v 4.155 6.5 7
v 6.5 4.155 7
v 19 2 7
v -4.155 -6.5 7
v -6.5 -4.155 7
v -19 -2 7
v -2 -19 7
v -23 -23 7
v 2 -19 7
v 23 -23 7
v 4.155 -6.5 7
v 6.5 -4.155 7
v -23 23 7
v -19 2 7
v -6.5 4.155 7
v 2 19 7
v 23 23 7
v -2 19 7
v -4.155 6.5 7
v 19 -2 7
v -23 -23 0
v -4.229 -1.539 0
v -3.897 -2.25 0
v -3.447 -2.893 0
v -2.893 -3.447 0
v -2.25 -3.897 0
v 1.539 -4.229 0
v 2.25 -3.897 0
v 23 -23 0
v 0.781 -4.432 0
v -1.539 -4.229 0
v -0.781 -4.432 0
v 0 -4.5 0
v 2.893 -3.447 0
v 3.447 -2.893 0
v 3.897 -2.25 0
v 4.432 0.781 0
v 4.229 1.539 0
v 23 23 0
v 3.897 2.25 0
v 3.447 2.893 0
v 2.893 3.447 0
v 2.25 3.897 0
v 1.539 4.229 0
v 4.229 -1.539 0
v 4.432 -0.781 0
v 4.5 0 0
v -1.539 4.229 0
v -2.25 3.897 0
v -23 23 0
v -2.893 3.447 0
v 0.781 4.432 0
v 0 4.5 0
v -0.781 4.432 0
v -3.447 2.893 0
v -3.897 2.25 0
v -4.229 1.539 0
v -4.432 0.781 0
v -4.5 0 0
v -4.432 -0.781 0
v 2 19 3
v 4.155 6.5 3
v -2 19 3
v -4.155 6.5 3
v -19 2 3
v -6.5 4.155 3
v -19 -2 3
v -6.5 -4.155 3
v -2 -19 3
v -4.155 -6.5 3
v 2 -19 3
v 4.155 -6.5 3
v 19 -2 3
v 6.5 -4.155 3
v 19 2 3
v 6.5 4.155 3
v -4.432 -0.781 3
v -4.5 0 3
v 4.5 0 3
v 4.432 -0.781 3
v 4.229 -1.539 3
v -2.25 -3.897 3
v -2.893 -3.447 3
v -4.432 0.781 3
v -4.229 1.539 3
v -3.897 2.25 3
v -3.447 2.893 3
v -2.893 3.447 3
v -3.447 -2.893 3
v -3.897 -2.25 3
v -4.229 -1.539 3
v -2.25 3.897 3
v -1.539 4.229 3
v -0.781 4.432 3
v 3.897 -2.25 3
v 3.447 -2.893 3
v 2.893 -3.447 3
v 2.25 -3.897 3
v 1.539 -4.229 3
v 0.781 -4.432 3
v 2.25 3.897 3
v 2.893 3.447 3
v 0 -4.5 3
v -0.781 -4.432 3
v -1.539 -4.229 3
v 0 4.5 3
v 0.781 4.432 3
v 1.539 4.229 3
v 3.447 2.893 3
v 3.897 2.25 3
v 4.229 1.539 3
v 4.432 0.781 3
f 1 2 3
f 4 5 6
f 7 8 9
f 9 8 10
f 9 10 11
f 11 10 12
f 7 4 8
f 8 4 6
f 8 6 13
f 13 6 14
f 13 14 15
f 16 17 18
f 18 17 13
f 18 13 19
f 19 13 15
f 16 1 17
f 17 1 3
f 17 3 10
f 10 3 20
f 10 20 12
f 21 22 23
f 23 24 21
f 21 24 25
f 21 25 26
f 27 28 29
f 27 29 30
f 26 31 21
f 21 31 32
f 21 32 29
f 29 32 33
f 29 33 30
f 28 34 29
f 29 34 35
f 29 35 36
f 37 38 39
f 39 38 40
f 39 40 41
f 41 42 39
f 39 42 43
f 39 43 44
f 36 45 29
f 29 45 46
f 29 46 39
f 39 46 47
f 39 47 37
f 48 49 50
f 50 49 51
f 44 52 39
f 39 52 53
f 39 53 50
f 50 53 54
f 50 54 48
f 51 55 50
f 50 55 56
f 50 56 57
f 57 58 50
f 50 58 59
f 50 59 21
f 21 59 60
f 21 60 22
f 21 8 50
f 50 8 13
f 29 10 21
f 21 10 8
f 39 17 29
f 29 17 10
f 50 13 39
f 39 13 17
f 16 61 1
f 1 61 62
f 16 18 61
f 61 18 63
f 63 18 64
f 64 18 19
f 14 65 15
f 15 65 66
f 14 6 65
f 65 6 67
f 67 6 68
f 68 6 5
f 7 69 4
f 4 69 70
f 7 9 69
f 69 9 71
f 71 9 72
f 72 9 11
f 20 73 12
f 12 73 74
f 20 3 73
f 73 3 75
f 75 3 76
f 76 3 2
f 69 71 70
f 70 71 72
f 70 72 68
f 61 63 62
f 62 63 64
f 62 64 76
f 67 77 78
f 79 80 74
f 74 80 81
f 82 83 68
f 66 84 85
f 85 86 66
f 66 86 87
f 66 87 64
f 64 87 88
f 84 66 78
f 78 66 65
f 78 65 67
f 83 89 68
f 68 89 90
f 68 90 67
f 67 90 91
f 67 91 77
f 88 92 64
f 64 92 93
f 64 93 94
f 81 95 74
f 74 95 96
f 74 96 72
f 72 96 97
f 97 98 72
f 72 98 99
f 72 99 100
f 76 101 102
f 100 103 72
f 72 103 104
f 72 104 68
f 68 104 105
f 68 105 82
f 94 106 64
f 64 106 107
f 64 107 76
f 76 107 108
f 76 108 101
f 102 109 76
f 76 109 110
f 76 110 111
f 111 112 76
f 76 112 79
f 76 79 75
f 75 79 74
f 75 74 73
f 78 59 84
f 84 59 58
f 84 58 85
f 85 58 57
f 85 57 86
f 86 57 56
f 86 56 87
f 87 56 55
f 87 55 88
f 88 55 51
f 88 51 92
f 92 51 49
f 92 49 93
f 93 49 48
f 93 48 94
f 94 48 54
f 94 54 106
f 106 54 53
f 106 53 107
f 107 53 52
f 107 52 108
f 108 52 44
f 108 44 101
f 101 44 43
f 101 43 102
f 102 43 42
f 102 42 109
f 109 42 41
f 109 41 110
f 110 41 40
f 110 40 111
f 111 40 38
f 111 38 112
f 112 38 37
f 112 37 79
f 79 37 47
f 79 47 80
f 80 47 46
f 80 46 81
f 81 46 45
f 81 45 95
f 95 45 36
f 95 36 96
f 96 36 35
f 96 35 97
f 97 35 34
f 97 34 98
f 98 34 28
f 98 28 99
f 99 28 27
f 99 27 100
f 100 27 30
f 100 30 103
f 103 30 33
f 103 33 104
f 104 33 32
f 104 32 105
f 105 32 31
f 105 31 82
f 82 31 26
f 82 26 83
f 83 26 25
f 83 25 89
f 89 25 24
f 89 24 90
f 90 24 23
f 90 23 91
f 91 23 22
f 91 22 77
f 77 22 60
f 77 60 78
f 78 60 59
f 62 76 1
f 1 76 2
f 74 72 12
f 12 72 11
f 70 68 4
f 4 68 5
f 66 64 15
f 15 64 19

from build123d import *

# Parameters (mm, degrees)
SKETCH1_W           = 46
SKETCH1_H           = 46
BOSS_EXTRUDE1_DEPTH = 7
SKETCH2_W           = 46
SKETCH2_H           = 46
BOSS_EXTRUDE2_DEPTH = 3
SKETCH3_R           = 4.5
CUT_EXTRUDE1_DEPTH  = 3
CUT_EXTRUDE2_DEPTH  = 4


with BuildPart() as part:
    # Sketch1 → Boss-Extrude1 (new body)
    with BuildSketch(Plane.XY):
        Rectangle(SKETCH1_W, SKETCH1_H)
        Polygon((-2, 19), (2, 19), (4.5, 4.5), (19, 2), (19, -2), (4.5, -4.5), (2, -19), (-2, -19), (-4.5, -4.5), (-19, -2), (-19, 2), (-4.5, 4.5), align=None, mode=Mode.SUBTRACT)
    extrude(amount=BOSS_EXTRUDE1_DEPTH)

    # Sketch2 → Boss-Extrude2 (add)
    with BuildSketch(Plane.XY):
        Rectangle(SKETCH2_W, SKETCH2_H)
    extrude(amount=BOSS_EXTRUDE2_DEPTH)

    # Sketch3 → Cut-Extrude1 (cut)
    with BuildSketch(Plane.XY):
        Circle(SKETCH3_R)
    extrude(amount=CUT_EXTRUDE1_DEPTH, mode=Mode.SUBTRACT)

    # Sketch4 → Cut-Extrude2 (cut)
    with BuildSketch(Plane.XY.offset(7)):
        Polygon((-4.155172414, 6.5), (-6.5, 4.155172414), (-6.5, -4.155172414), (-4.155172414, -6.5), (4.155172414, -6.5), (6.5, -4.155172414), (6.5, 4.155172414), (4.155172414, 6.5), align=None)
    extrude(amount=-CUT_EXTRUDE2_DEPTH, mode=Mode.SUBTRACT)


solid = part.part
